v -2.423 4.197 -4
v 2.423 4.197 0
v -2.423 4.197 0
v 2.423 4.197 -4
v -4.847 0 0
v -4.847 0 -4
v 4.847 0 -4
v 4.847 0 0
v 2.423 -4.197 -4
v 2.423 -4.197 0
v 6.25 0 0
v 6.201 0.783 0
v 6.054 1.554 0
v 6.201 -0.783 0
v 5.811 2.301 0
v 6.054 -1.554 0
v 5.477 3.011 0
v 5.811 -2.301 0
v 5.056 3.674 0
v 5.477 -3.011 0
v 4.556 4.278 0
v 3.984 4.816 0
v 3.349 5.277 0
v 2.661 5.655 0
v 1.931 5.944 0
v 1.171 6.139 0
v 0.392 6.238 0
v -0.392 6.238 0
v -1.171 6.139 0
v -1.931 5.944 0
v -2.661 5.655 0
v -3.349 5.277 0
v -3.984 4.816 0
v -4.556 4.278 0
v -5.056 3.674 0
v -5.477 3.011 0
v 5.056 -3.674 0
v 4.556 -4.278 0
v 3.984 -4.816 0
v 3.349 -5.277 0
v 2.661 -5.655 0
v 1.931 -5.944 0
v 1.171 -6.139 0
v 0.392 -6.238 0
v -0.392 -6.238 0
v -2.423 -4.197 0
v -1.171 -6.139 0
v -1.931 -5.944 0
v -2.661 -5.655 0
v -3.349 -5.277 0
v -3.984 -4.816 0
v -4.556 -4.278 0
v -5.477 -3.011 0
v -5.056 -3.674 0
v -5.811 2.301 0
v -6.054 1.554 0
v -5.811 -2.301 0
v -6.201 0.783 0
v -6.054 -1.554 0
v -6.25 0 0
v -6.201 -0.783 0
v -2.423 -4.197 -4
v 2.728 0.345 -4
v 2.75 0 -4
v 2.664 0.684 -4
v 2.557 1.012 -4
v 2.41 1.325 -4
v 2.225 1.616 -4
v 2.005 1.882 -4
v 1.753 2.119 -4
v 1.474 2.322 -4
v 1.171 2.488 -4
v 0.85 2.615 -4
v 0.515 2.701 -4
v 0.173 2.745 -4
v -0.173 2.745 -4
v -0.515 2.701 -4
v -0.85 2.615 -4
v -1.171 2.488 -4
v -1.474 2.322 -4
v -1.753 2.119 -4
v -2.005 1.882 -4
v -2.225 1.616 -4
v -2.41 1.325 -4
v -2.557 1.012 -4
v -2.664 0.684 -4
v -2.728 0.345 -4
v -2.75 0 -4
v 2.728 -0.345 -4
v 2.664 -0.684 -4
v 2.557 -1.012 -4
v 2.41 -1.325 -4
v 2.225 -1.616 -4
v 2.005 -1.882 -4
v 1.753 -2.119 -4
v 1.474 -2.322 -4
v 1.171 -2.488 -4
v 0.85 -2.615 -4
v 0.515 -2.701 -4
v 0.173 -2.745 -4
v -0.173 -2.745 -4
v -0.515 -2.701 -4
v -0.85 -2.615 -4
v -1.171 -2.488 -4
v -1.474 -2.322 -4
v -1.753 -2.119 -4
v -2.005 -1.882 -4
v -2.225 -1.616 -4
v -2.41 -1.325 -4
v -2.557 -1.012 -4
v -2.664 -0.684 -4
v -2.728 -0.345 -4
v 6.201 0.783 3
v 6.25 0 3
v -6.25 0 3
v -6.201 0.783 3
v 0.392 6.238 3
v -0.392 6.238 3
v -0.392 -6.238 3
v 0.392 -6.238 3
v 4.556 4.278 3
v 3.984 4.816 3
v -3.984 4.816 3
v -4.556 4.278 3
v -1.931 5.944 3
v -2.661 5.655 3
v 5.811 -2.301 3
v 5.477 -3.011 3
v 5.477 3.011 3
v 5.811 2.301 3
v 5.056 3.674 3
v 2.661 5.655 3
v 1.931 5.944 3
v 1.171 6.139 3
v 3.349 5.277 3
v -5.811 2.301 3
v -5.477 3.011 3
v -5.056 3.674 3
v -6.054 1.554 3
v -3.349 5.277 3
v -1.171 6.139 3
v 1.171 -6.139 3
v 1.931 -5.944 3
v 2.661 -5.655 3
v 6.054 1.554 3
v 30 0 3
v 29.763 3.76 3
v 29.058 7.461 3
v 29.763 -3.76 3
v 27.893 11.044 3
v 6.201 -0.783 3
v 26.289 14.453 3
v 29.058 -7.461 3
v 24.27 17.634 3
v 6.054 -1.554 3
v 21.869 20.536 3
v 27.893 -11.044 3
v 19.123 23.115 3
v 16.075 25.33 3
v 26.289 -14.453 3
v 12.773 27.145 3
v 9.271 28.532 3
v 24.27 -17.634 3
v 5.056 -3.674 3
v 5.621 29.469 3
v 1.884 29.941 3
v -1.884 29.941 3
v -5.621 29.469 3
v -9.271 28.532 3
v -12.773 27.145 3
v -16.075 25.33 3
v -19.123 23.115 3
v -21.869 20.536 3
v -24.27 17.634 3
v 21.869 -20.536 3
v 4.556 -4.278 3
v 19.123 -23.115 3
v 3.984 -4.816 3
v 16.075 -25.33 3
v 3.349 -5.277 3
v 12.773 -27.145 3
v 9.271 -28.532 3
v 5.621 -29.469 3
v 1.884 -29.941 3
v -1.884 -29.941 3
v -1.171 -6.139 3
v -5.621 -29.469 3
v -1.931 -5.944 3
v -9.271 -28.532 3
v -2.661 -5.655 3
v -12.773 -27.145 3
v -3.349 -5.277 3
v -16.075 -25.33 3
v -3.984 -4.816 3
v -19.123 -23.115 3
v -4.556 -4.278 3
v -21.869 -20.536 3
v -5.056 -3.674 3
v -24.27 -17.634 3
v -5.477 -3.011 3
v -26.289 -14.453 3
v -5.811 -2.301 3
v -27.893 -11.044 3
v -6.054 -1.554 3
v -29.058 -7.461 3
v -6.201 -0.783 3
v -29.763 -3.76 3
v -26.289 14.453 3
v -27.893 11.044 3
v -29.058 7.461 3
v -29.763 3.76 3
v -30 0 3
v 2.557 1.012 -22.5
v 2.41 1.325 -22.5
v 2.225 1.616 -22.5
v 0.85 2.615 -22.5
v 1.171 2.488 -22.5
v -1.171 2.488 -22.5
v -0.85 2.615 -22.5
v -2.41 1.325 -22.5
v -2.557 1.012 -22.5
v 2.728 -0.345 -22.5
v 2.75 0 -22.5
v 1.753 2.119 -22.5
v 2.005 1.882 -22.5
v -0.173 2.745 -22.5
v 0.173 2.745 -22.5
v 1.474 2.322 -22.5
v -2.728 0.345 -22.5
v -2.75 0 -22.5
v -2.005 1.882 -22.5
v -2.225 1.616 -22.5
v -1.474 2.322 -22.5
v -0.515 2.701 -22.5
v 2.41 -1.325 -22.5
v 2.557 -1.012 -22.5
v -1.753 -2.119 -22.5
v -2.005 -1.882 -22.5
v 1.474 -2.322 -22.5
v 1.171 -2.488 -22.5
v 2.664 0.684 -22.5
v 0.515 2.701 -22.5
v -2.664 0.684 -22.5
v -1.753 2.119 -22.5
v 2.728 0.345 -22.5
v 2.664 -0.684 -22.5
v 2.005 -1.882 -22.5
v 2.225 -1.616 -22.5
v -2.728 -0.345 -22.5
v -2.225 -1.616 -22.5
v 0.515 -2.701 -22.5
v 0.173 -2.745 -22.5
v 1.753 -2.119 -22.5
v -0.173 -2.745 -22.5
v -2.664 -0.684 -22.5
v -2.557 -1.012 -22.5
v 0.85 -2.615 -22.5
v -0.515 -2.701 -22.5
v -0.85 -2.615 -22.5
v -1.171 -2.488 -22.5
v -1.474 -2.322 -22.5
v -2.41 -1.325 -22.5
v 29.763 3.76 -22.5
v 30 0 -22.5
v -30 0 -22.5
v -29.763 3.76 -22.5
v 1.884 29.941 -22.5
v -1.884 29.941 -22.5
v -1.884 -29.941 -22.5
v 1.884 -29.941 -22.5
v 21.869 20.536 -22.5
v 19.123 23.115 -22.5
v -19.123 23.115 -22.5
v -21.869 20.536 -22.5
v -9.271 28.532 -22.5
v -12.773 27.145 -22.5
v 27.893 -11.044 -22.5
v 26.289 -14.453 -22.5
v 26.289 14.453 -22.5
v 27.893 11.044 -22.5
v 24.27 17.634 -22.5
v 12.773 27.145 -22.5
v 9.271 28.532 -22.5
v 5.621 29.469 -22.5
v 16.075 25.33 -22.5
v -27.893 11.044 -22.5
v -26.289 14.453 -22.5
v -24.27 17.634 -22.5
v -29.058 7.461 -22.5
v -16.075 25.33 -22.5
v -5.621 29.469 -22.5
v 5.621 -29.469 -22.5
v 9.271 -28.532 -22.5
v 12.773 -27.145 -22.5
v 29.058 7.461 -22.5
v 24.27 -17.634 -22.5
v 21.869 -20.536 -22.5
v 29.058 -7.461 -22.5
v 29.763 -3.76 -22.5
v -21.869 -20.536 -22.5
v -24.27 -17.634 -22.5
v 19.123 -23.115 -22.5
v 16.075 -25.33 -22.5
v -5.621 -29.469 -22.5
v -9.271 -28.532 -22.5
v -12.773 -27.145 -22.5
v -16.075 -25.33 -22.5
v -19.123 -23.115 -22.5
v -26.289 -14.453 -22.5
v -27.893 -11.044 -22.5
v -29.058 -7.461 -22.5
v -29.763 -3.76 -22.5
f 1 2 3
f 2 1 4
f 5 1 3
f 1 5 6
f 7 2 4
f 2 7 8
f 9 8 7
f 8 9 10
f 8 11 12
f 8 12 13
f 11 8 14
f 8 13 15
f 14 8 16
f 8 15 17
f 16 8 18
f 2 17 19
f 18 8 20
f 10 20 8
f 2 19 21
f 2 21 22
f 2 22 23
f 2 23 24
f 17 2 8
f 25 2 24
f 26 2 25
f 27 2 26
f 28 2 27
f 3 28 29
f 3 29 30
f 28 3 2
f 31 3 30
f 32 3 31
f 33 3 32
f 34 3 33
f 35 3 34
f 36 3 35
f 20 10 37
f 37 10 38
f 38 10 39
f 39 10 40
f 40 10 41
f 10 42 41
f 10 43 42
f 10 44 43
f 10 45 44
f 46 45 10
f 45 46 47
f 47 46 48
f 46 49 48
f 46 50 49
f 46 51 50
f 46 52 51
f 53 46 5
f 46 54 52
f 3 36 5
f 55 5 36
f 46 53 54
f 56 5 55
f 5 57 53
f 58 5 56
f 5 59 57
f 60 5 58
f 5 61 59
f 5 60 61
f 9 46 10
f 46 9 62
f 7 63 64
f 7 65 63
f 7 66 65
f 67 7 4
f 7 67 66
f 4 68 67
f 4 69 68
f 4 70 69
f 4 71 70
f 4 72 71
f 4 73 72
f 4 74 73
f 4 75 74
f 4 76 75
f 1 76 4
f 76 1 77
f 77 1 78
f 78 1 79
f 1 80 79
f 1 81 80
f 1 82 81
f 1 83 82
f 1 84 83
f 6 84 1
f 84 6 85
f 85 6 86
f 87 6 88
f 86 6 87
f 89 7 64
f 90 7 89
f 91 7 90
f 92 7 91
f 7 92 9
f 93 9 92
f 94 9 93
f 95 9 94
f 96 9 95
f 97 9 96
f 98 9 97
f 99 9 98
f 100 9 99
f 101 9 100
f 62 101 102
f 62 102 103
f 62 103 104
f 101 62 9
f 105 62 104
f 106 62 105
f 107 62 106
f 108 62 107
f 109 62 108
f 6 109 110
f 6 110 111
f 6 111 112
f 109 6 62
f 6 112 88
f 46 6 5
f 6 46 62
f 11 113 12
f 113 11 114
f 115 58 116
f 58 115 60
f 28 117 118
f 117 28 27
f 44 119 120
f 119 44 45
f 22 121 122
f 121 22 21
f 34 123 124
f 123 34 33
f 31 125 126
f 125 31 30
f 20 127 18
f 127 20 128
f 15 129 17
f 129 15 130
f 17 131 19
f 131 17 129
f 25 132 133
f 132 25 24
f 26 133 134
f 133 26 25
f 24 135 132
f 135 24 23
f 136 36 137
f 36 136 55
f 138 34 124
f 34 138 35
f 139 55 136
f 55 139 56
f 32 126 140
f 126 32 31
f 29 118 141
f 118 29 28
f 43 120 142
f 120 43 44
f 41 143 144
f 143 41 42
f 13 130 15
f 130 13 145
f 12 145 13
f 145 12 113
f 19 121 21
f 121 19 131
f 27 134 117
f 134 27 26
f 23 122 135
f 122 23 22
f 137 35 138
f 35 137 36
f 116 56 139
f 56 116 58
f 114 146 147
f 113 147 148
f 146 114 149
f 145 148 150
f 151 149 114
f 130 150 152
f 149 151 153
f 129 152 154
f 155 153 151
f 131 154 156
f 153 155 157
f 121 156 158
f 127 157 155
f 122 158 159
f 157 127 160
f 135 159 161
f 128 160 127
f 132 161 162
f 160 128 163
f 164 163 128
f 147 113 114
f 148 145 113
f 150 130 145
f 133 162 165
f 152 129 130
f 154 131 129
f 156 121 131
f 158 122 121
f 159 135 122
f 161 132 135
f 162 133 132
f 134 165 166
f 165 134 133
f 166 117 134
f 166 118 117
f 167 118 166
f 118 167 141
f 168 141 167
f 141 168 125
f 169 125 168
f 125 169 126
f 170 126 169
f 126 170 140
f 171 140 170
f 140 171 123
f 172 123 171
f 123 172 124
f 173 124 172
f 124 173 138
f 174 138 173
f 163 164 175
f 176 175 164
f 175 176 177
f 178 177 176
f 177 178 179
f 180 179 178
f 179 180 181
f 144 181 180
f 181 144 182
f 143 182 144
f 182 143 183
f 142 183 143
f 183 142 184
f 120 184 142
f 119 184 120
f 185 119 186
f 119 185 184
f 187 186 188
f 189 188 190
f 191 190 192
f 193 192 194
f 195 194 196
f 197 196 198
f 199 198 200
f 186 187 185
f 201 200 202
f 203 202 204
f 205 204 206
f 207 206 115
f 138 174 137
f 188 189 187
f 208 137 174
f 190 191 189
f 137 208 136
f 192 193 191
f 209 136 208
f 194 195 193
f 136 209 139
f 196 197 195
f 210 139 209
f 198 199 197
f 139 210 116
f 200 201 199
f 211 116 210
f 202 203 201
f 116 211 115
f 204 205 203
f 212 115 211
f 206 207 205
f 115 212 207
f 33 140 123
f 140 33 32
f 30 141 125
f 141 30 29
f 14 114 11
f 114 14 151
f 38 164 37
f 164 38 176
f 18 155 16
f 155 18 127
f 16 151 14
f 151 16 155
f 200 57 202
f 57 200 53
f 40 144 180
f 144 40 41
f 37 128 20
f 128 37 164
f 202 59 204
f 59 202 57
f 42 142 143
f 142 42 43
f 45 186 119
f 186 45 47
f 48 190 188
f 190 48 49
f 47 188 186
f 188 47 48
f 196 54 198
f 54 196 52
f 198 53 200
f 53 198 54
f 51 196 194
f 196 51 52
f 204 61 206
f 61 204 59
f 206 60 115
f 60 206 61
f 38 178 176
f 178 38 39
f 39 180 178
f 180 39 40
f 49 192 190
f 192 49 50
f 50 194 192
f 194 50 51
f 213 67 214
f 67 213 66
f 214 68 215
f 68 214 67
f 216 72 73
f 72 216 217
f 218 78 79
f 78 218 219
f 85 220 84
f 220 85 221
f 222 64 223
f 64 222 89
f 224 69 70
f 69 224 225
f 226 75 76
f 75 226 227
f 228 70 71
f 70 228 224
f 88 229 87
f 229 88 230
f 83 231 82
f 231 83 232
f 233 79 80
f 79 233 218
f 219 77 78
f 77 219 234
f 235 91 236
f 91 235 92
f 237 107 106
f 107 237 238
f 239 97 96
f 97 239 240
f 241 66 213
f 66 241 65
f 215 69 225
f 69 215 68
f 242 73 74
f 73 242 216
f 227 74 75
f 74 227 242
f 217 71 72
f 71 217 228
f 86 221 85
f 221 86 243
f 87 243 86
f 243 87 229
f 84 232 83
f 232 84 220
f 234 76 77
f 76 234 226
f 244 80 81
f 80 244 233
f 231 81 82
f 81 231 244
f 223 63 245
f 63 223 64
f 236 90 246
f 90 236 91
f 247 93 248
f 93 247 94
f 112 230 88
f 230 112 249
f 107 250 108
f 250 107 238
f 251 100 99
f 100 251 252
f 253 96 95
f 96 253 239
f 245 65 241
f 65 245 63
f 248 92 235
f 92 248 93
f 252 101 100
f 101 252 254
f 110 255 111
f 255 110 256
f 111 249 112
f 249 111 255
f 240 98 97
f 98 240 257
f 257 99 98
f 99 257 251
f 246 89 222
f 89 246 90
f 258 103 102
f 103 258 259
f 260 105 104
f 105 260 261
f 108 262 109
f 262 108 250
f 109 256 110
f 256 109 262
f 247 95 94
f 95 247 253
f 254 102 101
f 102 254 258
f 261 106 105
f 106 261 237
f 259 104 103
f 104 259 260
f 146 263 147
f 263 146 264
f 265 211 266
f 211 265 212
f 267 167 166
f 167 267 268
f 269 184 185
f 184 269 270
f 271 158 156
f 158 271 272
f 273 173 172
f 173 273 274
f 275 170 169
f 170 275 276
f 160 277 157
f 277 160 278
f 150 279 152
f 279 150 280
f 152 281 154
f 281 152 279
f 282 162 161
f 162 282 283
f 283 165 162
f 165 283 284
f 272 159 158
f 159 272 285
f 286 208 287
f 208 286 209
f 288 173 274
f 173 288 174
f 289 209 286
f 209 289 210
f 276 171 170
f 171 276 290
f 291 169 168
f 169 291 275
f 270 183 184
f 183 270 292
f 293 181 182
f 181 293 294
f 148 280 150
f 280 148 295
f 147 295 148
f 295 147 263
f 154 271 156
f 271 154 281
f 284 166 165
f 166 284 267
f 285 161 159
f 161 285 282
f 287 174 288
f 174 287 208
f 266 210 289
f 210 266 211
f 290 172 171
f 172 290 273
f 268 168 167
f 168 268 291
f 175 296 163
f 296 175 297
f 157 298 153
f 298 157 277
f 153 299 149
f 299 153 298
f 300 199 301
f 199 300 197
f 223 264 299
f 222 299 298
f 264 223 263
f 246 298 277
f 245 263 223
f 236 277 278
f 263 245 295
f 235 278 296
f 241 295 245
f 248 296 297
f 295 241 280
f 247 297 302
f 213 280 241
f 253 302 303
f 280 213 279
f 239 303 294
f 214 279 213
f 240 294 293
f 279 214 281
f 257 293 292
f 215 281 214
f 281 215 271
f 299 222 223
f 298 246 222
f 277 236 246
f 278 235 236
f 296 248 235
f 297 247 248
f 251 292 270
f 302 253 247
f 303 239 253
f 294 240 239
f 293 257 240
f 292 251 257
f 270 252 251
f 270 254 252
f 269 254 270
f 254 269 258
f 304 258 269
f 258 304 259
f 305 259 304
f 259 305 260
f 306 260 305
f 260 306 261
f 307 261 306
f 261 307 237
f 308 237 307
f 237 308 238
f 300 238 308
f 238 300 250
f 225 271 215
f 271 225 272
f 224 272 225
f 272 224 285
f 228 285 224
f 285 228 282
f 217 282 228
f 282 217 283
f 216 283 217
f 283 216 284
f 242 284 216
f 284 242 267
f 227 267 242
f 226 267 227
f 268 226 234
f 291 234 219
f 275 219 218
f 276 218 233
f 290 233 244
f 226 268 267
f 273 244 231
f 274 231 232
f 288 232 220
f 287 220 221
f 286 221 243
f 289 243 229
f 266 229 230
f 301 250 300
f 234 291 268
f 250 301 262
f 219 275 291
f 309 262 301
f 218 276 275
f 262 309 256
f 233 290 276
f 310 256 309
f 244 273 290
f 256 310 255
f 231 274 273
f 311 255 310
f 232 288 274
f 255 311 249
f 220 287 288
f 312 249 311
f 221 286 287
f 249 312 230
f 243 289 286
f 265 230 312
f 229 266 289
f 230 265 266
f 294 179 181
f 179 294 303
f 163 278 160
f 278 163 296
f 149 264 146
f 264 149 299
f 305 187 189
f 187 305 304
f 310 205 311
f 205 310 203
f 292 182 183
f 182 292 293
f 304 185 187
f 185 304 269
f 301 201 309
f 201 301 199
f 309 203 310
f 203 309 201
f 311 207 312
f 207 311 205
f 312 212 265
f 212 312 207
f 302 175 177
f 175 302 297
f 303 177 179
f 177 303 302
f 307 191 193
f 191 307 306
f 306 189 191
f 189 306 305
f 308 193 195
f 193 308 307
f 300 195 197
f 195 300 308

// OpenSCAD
$fn = 50;

difference() {
	union() {
		translate(v = [0, 0, -22.5]) {
			cylinder(h = 25.5, r = 30.0);
		}
	}
	union() {
		translate(v = [0, 0, 0]) {
			rotate(a = [0, 0, 0]) {
				difference() {
					union() {
						translate(v = [0, 0, -4]) {
							linear_extrude(height = 4) {
								polygon(points = [[4.8468, 0.0], [2.4234000000000004, 4.197451927062417], [-2.423399999999999, 4.197451927062417], [-4.8468, 5.935618106107392e-16], [-2.423400000000002, -4.197451927062416], [2.423399999999997, -4.197451927062419]]);
							}
						}
					}
					union();
				}
			}
		}
		#cylinder(h = 3, r = 6.25);
		#translate(v = [0, 0, -100.0]) {
			cylinder(h = 200, r = 2.75);
		}
	}
}
